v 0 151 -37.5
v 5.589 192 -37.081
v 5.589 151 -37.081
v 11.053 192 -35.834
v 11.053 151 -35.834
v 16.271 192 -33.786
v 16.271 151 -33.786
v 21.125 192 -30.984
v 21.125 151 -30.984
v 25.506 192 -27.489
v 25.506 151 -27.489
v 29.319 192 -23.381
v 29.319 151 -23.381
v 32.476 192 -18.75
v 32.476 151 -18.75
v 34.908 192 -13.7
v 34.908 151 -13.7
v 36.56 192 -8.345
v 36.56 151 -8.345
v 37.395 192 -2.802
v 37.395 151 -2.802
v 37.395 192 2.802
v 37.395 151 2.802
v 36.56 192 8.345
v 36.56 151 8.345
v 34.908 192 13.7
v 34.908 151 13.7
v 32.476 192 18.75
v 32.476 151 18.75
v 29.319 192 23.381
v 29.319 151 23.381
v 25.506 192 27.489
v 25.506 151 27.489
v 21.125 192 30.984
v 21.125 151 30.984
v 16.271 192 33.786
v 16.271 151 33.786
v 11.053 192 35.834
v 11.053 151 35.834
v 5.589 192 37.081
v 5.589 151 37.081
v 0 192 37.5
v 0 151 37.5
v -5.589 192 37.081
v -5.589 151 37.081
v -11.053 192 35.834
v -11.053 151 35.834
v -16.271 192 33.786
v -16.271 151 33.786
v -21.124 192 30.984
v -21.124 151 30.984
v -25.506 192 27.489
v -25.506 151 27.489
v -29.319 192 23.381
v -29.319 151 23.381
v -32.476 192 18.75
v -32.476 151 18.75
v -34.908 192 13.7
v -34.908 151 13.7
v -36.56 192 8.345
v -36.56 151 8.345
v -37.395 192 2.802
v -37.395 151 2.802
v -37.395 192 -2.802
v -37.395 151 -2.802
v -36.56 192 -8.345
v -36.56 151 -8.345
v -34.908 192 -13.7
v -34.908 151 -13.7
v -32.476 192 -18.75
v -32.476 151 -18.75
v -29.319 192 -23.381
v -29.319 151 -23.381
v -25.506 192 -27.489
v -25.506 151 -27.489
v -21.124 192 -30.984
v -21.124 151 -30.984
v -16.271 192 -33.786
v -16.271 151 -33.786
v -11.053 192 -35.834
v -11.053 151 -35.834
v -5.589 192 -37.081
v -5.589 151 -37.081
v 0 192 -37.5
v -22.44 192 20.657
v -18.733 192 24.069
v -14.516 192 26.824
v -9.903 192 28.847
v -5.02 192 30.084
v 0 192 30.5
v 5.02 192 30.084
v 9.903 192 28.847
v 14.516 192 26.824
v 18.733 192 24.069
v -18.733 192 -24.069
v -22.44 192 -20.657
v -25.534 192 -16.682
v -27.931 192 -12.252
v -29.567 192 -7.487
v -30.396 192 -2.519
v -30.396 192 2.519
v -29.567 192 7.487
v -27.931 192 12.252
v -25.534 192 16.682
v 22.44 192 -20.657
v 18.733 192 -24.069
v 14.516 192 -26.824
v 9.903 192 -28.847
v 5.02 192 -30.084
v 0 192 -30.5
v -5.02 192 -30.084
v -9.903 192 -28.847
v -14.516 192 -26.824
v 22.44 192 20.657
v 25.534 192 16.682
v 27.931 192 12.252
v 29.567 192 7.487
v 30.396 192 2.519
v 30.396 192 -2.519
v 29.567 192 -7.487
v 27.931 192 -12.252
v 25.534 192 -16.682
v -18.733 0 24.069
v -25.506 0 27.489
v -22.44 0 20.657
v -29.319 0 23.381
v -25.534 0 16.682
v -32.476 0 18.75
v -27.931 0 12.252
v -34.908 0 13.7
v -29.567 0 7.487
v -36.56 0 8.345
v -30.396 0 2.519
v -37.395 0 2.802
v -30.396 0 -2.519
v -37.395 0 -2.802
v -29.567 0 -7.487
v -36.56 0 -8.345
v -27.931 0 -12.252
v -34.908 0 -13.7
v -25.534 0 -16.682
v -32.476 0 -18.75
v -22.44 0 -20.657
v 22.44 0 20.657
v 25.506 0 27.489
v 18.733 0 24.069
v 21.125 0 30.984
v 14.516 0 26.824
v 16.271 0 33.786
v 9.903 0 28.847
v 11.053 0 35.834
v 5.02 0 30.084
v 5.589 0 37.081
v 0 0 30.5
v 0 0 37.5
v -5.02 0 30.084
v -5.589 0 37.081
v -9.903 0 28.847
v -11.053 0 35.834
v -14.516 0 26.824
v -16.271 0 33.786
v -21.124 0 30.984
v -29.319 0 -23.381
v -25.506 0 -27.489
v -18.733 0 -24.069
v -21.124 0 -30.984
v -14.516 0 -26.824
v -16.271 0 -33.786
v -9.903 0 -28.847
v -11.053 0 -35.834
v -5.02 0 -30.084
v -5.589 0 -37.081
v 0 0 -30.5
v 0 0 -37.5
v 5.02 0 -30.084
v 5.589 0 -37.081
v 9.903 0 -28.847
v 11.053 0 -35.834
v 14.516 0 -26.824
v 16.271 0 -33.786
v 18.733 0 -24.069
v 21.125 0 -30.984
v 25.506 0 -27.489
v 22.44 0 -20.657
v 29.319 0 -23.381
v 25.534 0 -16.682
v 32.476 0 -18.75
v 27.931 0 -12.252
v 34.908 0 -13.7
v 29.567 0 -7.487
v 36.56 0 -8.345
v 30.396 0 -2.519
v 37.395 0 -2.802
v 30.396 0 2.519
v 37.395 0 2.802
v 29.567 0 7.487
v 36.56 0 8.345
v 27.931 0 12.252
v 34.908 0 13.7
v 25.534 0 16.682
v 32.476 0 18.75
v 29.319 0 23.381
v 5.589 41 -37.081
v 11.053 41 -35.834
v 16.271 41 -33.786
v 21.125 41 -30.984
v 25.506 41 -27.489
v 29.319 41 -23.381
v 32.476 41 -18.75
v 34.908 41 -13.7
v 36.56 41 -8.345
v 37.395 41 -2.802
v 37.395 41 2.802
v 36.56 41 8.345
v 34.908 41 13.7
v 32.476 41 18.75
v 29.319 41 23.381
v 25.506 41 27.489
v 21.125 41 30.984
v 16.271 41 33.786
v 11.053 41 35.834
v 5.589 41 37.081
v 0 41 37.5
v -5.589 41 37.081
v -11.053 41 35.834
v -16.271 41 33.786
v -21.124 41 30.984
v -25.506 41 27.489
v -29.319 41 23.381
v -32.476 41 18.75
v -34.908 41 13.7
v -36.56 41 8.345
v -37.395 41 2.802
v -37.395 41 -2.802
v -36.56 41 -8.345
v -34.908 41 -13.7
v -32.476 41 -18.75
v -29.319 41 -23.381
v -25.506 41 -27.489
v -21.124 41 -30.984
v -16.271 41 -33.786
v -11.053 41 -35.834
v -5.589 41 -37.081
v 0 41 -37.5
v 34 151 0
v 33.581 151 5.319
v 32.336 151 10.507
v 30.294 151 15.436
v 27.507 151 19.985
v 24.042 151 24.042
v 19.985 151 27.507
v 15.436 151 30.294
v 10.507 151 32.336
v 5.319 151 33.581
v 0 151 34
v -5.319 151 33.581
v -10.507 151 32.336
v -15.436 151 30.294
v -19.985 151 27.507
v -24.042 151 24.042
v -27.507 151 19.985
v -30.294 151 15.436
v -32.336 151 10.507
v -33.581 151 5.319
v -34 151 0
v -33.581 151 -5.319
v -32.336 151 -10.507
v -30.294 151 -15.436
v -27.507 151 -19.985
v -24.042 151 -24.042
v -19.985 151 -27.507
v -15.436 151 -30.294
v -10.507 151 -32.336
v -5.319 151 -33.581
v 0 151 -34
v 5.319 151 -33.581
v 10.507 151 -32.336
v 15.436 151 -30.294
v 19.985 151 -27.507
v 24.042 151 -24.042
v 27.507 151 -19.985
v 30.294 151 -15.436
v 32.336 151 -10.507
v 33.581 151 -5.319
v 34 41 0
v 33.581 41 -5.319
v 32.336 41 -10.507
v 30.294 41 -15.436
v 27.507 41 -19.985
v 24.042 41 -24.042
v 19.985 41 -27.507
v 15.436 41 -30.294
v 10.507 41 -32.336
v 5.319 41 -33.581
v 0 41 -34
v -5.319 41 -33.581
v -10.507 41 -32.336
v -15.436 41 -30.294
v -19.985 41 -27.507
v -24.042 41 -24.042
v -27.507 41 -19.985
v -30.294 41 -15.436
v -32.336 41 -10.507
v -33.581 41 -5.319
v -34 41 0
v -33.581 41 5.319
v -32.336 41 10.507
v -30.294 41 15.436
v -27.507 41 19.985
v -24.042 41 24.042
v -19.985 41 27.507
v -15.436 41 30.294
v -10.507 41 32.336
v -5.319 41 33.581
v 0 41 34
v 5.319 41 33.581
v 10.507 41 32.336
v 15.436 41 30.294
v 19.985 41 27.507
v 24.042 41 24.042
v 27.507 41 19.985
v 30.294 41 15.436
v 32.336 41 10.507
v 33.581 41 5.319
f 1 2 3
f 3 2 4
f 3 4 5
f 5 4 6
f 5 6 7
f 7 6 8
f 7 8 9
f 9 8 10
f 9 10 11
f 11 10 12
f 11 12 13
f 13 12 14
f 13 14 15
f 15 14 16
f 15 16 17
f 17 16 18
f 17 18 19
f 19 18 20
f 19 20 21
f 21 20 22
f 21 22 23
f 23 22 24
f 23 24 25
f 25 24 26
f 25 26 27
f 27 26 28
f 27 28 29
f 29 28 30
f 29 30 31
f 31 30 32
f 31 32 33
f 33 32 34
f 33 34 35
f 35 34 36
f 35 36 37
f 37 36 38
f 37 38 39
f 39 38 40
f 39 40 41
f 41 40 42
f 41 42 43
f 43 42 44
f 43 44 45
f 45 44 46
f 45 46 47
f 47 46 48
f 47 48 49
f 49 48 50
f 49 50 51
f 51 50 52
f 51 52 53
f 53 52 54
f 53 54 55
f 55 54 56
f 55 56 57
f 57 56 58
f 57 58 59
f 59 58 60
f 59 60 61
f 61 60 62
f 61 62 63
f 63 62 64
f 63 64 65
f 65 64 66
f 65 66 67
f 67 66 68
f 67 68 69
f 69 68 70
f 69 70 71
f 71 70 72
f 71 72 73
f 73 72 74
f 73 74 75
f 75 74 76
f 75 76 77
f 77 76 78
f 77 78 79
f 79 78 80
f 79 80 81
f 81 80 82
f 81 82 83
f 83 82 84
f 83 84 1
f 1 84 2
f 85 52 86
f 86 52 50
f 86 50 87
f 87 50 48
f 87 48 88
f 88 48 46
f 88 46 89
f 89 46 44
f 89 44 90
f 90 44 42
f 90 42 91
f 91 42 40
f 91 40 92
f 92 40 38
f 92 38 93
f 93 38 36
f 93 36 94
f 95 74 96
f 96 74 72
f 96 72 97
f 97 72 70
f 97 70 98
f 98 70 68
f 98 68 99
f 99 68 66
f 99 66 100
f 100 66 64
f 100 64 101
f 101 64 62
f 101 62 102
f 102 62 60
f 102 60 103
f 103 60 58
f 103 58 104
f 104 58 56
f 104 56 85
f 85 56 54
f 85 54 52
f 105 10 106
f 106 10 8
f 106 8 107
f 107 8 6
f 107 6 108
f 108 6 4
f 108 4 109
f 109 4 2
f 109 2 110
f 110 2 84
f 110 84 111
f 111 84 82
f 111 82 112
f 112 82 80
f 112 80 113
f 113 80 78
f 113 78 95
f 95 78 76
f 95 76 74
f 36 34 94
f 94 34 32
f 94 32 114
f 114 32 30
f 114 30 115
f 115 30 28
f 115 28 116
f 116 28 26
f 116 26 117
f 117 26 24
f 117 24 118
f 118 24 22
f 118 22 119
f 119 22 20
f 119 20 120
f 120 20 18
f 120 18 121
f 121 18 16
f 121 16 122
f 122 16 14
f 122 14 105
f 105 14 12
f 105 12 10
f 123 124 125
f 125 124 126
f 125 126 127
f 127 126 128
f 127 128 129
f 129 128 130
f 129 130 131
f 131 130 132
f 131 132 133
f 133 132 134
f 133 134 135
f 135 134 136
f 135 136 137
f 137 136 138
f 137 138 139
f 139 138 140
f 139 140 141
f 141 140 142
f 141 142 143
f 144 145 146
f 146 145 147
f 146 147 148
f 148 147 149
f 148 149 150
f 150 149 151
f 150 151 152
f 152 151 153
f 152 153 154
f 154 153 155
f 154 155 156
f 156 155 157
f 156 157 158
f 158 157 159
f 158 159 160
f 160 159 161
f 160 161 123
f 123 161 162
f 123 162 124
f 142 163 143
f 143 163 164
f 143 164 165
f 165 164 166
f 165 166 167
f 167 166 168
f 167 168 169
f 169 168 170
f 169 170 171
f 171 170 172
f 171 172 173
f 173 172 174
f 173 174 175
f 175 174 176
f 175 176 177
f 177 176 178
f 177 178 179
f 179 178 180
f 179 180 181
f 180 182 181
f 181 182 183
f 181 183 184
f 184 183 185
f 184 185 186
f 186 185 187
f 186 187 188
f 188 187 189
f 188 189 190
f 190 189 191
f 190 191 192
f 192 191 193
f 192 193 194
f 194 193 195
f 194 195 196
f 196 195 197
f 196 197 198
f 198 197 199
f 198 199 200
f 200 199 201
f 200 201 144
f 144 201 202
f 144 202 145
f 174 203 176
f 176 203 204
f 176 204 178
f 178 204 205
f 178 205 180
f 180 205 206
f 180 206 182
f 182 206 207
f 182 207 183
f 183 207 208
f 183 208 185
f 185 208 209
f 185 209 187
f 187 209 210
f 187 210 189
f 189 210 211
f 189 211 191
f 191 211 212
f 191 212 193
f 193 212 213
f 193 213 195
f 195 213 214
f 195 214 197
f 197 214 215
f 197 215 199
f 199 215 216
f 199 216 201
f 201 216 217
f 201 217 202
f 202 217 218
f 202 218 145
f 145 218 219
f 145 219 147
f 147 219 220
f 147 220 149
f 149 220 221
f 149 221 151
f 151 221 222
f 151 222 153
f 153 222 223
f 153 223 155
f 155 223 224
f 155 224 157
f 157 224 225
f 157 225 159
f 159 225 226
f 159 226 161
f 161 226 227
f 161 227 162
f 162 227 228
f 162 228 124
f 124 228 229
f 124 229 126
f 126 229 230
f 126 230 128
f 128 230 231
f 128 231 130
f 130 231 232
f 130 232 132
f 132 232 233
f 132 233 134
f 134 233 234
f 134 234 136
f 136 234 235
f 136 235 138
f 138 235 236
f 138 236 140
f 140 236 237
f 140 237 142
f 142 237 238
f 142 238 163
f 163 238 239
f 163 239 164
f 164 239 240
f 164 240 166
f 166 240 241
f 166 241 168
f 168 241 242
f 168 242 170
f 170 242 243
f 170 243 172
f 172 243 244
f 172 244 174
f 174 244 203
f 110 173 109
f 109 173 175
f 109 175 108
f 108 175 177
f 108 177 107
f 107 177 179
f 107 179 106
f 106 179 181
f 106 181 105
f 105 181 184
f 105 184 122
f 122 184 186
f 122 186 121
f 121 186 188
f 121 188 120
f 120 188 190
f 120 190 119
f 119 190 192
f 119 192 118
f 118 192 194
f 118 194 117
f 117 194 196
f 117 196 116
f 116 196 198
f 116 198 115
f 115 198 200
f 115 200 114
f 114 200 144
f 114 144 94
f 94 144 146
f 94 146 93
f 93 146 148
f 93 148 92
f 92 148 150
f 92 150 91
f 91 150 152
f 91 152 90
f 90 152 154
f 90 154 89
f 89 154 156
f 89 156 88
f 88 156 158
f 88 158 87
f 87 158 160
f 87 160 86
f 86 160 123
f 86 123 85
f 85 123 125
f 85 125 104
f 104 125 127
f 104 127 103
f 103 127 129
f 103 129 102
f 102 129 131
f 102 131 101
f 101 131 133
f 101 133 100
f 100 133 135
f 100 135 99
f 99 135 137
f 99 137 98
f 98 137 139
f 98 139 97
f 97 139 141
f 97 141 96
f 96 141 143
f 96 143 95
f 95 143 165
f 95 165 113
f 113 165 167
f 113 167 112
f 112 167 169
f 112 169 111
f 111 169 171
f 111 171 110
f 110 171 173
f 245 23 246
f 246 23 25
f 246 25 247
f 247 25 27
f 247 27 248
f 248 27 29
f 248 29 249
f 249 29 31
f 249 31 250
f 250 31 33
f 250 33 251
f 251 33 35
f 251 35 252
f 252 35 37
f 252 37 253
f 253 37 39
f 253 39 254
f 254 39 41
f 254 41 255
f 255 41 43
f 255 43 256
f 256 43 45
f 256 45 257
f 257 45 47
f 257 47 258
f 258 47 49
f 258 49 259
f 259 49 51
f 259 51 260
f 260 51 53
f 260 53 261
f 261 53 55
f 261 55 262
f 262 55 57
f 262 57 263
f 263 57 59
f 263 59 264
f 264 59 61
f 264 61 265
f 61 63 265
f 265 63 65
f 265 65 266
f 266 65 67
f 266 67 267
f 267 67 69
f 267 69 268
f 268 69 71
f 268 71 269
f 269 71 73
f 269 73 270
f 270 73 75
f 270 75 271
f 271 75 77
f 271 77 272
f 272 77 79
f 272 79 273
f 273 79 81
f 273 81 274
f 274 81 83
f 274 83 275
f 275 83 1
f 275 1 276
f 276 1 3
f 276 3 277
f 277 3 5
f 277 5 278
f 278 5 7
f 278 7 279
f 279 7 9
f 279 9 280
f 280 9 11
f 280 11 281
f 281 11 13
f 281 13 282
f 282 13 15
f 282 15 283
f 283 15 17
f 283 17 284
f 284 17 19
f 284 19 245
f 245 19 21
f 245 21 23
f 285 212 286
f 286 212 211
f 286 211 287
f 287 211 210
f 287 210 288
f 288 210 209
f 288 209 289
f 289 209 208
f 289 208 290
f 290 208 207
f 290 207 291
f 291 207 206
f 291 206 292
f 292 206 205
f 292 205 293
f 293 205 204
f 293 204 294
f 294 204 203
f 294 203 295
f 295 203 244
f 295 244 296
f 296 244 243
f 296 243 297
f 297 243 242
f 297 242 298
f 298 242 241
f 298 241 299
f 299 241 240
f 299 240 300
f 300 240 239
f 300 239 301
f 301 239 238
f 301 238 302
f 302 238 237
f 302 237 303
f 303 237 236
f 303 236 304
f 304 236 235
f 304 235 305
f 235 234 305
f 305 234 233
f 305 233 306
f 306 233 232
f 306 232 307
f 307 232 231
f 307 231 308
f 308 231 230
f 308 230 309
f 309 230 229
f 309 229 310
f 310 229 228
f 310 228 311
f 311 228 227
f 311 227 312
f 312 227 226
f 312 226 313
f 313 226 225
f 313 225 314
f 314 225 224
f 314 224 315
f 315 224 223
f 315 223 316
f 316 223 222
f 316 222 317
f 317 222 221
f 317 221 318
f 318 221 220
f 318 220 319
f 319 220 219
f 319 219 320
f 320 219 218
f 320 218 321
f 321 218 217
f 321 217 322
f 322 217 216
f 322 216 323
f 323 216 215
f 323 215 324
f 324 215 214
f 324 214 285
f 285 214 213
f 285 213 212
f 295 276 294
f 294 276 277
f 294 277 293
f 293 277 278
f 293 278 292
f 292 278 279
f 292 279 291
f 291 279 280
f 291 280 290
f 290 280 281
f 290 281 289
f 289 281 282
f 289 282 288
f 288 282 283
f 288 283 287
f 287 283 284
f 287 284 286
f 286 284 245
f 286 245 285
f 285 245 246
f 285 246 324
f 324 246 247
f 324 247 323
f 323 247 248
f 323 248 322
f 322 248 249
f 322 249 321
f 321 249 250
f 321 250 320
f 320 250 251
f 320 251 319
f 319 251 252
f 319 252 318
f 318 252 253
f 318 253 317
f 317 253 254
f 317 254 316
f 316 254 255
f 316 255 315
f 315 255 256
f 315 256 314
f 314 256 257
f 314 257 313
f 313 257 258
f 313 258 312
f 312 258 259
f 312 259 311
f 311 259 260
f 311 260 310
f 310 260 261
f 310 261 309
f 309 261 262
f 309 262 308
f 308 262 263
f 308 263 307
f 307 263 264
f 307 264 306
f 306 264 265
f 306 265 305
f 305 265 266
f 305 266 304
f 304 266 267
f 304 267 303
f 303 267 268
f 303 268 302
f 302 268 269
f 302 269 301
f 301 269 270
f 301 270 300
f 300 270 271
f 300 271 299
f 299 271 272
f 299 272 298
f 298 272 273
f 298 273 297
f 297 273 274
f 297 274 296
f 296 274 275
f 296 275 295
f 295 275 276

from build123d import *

# Parameters (mm, degrees)
SKETCH3_R           = 37.5
SKETCH3_R_2         = 30.5
BOSS_EXTRUDE1_DEPTH = 192
CUT_EXTRUDE3_START  = -41
SKETCH7_R           = 39
SKETCH7_R_2         = 34
CUT_EXTRUDE3_DEPTH  = 110


with BuildPart() as part:
    # Sketch3 → Boss-Extrude1 (new body)
    with BuildSketch(Plane(origin=(0, 0, 0), x_dir=(1, 0, 0), z_dir=(0, 1, 0))):
        Circle(SKETCH3_R)
        Circle(SKETCH3_R_2, mode=Mode.SUBTRACT)
    extrude(amount=BOSS_EXTRUDE1_DEPTH)

    # Sketch7 → Cut-Extrude3 (cut)
    with BuildSketch(Plane(origin=(0, 0, 0), x_dir=(-1, 0, 0), z_dir=(0, -1, 0)).offset(CUT_EXTRUDE3_START)):
        Circle(SKETCH7_R)
        Circle(SKETCH7_R_2, mode=Mode.SUBTRACT)
    extrude(amount=-CUT_EXTRUDE3_DEPTH, mode=Mode.SUBTRACT)


solid = part.part
